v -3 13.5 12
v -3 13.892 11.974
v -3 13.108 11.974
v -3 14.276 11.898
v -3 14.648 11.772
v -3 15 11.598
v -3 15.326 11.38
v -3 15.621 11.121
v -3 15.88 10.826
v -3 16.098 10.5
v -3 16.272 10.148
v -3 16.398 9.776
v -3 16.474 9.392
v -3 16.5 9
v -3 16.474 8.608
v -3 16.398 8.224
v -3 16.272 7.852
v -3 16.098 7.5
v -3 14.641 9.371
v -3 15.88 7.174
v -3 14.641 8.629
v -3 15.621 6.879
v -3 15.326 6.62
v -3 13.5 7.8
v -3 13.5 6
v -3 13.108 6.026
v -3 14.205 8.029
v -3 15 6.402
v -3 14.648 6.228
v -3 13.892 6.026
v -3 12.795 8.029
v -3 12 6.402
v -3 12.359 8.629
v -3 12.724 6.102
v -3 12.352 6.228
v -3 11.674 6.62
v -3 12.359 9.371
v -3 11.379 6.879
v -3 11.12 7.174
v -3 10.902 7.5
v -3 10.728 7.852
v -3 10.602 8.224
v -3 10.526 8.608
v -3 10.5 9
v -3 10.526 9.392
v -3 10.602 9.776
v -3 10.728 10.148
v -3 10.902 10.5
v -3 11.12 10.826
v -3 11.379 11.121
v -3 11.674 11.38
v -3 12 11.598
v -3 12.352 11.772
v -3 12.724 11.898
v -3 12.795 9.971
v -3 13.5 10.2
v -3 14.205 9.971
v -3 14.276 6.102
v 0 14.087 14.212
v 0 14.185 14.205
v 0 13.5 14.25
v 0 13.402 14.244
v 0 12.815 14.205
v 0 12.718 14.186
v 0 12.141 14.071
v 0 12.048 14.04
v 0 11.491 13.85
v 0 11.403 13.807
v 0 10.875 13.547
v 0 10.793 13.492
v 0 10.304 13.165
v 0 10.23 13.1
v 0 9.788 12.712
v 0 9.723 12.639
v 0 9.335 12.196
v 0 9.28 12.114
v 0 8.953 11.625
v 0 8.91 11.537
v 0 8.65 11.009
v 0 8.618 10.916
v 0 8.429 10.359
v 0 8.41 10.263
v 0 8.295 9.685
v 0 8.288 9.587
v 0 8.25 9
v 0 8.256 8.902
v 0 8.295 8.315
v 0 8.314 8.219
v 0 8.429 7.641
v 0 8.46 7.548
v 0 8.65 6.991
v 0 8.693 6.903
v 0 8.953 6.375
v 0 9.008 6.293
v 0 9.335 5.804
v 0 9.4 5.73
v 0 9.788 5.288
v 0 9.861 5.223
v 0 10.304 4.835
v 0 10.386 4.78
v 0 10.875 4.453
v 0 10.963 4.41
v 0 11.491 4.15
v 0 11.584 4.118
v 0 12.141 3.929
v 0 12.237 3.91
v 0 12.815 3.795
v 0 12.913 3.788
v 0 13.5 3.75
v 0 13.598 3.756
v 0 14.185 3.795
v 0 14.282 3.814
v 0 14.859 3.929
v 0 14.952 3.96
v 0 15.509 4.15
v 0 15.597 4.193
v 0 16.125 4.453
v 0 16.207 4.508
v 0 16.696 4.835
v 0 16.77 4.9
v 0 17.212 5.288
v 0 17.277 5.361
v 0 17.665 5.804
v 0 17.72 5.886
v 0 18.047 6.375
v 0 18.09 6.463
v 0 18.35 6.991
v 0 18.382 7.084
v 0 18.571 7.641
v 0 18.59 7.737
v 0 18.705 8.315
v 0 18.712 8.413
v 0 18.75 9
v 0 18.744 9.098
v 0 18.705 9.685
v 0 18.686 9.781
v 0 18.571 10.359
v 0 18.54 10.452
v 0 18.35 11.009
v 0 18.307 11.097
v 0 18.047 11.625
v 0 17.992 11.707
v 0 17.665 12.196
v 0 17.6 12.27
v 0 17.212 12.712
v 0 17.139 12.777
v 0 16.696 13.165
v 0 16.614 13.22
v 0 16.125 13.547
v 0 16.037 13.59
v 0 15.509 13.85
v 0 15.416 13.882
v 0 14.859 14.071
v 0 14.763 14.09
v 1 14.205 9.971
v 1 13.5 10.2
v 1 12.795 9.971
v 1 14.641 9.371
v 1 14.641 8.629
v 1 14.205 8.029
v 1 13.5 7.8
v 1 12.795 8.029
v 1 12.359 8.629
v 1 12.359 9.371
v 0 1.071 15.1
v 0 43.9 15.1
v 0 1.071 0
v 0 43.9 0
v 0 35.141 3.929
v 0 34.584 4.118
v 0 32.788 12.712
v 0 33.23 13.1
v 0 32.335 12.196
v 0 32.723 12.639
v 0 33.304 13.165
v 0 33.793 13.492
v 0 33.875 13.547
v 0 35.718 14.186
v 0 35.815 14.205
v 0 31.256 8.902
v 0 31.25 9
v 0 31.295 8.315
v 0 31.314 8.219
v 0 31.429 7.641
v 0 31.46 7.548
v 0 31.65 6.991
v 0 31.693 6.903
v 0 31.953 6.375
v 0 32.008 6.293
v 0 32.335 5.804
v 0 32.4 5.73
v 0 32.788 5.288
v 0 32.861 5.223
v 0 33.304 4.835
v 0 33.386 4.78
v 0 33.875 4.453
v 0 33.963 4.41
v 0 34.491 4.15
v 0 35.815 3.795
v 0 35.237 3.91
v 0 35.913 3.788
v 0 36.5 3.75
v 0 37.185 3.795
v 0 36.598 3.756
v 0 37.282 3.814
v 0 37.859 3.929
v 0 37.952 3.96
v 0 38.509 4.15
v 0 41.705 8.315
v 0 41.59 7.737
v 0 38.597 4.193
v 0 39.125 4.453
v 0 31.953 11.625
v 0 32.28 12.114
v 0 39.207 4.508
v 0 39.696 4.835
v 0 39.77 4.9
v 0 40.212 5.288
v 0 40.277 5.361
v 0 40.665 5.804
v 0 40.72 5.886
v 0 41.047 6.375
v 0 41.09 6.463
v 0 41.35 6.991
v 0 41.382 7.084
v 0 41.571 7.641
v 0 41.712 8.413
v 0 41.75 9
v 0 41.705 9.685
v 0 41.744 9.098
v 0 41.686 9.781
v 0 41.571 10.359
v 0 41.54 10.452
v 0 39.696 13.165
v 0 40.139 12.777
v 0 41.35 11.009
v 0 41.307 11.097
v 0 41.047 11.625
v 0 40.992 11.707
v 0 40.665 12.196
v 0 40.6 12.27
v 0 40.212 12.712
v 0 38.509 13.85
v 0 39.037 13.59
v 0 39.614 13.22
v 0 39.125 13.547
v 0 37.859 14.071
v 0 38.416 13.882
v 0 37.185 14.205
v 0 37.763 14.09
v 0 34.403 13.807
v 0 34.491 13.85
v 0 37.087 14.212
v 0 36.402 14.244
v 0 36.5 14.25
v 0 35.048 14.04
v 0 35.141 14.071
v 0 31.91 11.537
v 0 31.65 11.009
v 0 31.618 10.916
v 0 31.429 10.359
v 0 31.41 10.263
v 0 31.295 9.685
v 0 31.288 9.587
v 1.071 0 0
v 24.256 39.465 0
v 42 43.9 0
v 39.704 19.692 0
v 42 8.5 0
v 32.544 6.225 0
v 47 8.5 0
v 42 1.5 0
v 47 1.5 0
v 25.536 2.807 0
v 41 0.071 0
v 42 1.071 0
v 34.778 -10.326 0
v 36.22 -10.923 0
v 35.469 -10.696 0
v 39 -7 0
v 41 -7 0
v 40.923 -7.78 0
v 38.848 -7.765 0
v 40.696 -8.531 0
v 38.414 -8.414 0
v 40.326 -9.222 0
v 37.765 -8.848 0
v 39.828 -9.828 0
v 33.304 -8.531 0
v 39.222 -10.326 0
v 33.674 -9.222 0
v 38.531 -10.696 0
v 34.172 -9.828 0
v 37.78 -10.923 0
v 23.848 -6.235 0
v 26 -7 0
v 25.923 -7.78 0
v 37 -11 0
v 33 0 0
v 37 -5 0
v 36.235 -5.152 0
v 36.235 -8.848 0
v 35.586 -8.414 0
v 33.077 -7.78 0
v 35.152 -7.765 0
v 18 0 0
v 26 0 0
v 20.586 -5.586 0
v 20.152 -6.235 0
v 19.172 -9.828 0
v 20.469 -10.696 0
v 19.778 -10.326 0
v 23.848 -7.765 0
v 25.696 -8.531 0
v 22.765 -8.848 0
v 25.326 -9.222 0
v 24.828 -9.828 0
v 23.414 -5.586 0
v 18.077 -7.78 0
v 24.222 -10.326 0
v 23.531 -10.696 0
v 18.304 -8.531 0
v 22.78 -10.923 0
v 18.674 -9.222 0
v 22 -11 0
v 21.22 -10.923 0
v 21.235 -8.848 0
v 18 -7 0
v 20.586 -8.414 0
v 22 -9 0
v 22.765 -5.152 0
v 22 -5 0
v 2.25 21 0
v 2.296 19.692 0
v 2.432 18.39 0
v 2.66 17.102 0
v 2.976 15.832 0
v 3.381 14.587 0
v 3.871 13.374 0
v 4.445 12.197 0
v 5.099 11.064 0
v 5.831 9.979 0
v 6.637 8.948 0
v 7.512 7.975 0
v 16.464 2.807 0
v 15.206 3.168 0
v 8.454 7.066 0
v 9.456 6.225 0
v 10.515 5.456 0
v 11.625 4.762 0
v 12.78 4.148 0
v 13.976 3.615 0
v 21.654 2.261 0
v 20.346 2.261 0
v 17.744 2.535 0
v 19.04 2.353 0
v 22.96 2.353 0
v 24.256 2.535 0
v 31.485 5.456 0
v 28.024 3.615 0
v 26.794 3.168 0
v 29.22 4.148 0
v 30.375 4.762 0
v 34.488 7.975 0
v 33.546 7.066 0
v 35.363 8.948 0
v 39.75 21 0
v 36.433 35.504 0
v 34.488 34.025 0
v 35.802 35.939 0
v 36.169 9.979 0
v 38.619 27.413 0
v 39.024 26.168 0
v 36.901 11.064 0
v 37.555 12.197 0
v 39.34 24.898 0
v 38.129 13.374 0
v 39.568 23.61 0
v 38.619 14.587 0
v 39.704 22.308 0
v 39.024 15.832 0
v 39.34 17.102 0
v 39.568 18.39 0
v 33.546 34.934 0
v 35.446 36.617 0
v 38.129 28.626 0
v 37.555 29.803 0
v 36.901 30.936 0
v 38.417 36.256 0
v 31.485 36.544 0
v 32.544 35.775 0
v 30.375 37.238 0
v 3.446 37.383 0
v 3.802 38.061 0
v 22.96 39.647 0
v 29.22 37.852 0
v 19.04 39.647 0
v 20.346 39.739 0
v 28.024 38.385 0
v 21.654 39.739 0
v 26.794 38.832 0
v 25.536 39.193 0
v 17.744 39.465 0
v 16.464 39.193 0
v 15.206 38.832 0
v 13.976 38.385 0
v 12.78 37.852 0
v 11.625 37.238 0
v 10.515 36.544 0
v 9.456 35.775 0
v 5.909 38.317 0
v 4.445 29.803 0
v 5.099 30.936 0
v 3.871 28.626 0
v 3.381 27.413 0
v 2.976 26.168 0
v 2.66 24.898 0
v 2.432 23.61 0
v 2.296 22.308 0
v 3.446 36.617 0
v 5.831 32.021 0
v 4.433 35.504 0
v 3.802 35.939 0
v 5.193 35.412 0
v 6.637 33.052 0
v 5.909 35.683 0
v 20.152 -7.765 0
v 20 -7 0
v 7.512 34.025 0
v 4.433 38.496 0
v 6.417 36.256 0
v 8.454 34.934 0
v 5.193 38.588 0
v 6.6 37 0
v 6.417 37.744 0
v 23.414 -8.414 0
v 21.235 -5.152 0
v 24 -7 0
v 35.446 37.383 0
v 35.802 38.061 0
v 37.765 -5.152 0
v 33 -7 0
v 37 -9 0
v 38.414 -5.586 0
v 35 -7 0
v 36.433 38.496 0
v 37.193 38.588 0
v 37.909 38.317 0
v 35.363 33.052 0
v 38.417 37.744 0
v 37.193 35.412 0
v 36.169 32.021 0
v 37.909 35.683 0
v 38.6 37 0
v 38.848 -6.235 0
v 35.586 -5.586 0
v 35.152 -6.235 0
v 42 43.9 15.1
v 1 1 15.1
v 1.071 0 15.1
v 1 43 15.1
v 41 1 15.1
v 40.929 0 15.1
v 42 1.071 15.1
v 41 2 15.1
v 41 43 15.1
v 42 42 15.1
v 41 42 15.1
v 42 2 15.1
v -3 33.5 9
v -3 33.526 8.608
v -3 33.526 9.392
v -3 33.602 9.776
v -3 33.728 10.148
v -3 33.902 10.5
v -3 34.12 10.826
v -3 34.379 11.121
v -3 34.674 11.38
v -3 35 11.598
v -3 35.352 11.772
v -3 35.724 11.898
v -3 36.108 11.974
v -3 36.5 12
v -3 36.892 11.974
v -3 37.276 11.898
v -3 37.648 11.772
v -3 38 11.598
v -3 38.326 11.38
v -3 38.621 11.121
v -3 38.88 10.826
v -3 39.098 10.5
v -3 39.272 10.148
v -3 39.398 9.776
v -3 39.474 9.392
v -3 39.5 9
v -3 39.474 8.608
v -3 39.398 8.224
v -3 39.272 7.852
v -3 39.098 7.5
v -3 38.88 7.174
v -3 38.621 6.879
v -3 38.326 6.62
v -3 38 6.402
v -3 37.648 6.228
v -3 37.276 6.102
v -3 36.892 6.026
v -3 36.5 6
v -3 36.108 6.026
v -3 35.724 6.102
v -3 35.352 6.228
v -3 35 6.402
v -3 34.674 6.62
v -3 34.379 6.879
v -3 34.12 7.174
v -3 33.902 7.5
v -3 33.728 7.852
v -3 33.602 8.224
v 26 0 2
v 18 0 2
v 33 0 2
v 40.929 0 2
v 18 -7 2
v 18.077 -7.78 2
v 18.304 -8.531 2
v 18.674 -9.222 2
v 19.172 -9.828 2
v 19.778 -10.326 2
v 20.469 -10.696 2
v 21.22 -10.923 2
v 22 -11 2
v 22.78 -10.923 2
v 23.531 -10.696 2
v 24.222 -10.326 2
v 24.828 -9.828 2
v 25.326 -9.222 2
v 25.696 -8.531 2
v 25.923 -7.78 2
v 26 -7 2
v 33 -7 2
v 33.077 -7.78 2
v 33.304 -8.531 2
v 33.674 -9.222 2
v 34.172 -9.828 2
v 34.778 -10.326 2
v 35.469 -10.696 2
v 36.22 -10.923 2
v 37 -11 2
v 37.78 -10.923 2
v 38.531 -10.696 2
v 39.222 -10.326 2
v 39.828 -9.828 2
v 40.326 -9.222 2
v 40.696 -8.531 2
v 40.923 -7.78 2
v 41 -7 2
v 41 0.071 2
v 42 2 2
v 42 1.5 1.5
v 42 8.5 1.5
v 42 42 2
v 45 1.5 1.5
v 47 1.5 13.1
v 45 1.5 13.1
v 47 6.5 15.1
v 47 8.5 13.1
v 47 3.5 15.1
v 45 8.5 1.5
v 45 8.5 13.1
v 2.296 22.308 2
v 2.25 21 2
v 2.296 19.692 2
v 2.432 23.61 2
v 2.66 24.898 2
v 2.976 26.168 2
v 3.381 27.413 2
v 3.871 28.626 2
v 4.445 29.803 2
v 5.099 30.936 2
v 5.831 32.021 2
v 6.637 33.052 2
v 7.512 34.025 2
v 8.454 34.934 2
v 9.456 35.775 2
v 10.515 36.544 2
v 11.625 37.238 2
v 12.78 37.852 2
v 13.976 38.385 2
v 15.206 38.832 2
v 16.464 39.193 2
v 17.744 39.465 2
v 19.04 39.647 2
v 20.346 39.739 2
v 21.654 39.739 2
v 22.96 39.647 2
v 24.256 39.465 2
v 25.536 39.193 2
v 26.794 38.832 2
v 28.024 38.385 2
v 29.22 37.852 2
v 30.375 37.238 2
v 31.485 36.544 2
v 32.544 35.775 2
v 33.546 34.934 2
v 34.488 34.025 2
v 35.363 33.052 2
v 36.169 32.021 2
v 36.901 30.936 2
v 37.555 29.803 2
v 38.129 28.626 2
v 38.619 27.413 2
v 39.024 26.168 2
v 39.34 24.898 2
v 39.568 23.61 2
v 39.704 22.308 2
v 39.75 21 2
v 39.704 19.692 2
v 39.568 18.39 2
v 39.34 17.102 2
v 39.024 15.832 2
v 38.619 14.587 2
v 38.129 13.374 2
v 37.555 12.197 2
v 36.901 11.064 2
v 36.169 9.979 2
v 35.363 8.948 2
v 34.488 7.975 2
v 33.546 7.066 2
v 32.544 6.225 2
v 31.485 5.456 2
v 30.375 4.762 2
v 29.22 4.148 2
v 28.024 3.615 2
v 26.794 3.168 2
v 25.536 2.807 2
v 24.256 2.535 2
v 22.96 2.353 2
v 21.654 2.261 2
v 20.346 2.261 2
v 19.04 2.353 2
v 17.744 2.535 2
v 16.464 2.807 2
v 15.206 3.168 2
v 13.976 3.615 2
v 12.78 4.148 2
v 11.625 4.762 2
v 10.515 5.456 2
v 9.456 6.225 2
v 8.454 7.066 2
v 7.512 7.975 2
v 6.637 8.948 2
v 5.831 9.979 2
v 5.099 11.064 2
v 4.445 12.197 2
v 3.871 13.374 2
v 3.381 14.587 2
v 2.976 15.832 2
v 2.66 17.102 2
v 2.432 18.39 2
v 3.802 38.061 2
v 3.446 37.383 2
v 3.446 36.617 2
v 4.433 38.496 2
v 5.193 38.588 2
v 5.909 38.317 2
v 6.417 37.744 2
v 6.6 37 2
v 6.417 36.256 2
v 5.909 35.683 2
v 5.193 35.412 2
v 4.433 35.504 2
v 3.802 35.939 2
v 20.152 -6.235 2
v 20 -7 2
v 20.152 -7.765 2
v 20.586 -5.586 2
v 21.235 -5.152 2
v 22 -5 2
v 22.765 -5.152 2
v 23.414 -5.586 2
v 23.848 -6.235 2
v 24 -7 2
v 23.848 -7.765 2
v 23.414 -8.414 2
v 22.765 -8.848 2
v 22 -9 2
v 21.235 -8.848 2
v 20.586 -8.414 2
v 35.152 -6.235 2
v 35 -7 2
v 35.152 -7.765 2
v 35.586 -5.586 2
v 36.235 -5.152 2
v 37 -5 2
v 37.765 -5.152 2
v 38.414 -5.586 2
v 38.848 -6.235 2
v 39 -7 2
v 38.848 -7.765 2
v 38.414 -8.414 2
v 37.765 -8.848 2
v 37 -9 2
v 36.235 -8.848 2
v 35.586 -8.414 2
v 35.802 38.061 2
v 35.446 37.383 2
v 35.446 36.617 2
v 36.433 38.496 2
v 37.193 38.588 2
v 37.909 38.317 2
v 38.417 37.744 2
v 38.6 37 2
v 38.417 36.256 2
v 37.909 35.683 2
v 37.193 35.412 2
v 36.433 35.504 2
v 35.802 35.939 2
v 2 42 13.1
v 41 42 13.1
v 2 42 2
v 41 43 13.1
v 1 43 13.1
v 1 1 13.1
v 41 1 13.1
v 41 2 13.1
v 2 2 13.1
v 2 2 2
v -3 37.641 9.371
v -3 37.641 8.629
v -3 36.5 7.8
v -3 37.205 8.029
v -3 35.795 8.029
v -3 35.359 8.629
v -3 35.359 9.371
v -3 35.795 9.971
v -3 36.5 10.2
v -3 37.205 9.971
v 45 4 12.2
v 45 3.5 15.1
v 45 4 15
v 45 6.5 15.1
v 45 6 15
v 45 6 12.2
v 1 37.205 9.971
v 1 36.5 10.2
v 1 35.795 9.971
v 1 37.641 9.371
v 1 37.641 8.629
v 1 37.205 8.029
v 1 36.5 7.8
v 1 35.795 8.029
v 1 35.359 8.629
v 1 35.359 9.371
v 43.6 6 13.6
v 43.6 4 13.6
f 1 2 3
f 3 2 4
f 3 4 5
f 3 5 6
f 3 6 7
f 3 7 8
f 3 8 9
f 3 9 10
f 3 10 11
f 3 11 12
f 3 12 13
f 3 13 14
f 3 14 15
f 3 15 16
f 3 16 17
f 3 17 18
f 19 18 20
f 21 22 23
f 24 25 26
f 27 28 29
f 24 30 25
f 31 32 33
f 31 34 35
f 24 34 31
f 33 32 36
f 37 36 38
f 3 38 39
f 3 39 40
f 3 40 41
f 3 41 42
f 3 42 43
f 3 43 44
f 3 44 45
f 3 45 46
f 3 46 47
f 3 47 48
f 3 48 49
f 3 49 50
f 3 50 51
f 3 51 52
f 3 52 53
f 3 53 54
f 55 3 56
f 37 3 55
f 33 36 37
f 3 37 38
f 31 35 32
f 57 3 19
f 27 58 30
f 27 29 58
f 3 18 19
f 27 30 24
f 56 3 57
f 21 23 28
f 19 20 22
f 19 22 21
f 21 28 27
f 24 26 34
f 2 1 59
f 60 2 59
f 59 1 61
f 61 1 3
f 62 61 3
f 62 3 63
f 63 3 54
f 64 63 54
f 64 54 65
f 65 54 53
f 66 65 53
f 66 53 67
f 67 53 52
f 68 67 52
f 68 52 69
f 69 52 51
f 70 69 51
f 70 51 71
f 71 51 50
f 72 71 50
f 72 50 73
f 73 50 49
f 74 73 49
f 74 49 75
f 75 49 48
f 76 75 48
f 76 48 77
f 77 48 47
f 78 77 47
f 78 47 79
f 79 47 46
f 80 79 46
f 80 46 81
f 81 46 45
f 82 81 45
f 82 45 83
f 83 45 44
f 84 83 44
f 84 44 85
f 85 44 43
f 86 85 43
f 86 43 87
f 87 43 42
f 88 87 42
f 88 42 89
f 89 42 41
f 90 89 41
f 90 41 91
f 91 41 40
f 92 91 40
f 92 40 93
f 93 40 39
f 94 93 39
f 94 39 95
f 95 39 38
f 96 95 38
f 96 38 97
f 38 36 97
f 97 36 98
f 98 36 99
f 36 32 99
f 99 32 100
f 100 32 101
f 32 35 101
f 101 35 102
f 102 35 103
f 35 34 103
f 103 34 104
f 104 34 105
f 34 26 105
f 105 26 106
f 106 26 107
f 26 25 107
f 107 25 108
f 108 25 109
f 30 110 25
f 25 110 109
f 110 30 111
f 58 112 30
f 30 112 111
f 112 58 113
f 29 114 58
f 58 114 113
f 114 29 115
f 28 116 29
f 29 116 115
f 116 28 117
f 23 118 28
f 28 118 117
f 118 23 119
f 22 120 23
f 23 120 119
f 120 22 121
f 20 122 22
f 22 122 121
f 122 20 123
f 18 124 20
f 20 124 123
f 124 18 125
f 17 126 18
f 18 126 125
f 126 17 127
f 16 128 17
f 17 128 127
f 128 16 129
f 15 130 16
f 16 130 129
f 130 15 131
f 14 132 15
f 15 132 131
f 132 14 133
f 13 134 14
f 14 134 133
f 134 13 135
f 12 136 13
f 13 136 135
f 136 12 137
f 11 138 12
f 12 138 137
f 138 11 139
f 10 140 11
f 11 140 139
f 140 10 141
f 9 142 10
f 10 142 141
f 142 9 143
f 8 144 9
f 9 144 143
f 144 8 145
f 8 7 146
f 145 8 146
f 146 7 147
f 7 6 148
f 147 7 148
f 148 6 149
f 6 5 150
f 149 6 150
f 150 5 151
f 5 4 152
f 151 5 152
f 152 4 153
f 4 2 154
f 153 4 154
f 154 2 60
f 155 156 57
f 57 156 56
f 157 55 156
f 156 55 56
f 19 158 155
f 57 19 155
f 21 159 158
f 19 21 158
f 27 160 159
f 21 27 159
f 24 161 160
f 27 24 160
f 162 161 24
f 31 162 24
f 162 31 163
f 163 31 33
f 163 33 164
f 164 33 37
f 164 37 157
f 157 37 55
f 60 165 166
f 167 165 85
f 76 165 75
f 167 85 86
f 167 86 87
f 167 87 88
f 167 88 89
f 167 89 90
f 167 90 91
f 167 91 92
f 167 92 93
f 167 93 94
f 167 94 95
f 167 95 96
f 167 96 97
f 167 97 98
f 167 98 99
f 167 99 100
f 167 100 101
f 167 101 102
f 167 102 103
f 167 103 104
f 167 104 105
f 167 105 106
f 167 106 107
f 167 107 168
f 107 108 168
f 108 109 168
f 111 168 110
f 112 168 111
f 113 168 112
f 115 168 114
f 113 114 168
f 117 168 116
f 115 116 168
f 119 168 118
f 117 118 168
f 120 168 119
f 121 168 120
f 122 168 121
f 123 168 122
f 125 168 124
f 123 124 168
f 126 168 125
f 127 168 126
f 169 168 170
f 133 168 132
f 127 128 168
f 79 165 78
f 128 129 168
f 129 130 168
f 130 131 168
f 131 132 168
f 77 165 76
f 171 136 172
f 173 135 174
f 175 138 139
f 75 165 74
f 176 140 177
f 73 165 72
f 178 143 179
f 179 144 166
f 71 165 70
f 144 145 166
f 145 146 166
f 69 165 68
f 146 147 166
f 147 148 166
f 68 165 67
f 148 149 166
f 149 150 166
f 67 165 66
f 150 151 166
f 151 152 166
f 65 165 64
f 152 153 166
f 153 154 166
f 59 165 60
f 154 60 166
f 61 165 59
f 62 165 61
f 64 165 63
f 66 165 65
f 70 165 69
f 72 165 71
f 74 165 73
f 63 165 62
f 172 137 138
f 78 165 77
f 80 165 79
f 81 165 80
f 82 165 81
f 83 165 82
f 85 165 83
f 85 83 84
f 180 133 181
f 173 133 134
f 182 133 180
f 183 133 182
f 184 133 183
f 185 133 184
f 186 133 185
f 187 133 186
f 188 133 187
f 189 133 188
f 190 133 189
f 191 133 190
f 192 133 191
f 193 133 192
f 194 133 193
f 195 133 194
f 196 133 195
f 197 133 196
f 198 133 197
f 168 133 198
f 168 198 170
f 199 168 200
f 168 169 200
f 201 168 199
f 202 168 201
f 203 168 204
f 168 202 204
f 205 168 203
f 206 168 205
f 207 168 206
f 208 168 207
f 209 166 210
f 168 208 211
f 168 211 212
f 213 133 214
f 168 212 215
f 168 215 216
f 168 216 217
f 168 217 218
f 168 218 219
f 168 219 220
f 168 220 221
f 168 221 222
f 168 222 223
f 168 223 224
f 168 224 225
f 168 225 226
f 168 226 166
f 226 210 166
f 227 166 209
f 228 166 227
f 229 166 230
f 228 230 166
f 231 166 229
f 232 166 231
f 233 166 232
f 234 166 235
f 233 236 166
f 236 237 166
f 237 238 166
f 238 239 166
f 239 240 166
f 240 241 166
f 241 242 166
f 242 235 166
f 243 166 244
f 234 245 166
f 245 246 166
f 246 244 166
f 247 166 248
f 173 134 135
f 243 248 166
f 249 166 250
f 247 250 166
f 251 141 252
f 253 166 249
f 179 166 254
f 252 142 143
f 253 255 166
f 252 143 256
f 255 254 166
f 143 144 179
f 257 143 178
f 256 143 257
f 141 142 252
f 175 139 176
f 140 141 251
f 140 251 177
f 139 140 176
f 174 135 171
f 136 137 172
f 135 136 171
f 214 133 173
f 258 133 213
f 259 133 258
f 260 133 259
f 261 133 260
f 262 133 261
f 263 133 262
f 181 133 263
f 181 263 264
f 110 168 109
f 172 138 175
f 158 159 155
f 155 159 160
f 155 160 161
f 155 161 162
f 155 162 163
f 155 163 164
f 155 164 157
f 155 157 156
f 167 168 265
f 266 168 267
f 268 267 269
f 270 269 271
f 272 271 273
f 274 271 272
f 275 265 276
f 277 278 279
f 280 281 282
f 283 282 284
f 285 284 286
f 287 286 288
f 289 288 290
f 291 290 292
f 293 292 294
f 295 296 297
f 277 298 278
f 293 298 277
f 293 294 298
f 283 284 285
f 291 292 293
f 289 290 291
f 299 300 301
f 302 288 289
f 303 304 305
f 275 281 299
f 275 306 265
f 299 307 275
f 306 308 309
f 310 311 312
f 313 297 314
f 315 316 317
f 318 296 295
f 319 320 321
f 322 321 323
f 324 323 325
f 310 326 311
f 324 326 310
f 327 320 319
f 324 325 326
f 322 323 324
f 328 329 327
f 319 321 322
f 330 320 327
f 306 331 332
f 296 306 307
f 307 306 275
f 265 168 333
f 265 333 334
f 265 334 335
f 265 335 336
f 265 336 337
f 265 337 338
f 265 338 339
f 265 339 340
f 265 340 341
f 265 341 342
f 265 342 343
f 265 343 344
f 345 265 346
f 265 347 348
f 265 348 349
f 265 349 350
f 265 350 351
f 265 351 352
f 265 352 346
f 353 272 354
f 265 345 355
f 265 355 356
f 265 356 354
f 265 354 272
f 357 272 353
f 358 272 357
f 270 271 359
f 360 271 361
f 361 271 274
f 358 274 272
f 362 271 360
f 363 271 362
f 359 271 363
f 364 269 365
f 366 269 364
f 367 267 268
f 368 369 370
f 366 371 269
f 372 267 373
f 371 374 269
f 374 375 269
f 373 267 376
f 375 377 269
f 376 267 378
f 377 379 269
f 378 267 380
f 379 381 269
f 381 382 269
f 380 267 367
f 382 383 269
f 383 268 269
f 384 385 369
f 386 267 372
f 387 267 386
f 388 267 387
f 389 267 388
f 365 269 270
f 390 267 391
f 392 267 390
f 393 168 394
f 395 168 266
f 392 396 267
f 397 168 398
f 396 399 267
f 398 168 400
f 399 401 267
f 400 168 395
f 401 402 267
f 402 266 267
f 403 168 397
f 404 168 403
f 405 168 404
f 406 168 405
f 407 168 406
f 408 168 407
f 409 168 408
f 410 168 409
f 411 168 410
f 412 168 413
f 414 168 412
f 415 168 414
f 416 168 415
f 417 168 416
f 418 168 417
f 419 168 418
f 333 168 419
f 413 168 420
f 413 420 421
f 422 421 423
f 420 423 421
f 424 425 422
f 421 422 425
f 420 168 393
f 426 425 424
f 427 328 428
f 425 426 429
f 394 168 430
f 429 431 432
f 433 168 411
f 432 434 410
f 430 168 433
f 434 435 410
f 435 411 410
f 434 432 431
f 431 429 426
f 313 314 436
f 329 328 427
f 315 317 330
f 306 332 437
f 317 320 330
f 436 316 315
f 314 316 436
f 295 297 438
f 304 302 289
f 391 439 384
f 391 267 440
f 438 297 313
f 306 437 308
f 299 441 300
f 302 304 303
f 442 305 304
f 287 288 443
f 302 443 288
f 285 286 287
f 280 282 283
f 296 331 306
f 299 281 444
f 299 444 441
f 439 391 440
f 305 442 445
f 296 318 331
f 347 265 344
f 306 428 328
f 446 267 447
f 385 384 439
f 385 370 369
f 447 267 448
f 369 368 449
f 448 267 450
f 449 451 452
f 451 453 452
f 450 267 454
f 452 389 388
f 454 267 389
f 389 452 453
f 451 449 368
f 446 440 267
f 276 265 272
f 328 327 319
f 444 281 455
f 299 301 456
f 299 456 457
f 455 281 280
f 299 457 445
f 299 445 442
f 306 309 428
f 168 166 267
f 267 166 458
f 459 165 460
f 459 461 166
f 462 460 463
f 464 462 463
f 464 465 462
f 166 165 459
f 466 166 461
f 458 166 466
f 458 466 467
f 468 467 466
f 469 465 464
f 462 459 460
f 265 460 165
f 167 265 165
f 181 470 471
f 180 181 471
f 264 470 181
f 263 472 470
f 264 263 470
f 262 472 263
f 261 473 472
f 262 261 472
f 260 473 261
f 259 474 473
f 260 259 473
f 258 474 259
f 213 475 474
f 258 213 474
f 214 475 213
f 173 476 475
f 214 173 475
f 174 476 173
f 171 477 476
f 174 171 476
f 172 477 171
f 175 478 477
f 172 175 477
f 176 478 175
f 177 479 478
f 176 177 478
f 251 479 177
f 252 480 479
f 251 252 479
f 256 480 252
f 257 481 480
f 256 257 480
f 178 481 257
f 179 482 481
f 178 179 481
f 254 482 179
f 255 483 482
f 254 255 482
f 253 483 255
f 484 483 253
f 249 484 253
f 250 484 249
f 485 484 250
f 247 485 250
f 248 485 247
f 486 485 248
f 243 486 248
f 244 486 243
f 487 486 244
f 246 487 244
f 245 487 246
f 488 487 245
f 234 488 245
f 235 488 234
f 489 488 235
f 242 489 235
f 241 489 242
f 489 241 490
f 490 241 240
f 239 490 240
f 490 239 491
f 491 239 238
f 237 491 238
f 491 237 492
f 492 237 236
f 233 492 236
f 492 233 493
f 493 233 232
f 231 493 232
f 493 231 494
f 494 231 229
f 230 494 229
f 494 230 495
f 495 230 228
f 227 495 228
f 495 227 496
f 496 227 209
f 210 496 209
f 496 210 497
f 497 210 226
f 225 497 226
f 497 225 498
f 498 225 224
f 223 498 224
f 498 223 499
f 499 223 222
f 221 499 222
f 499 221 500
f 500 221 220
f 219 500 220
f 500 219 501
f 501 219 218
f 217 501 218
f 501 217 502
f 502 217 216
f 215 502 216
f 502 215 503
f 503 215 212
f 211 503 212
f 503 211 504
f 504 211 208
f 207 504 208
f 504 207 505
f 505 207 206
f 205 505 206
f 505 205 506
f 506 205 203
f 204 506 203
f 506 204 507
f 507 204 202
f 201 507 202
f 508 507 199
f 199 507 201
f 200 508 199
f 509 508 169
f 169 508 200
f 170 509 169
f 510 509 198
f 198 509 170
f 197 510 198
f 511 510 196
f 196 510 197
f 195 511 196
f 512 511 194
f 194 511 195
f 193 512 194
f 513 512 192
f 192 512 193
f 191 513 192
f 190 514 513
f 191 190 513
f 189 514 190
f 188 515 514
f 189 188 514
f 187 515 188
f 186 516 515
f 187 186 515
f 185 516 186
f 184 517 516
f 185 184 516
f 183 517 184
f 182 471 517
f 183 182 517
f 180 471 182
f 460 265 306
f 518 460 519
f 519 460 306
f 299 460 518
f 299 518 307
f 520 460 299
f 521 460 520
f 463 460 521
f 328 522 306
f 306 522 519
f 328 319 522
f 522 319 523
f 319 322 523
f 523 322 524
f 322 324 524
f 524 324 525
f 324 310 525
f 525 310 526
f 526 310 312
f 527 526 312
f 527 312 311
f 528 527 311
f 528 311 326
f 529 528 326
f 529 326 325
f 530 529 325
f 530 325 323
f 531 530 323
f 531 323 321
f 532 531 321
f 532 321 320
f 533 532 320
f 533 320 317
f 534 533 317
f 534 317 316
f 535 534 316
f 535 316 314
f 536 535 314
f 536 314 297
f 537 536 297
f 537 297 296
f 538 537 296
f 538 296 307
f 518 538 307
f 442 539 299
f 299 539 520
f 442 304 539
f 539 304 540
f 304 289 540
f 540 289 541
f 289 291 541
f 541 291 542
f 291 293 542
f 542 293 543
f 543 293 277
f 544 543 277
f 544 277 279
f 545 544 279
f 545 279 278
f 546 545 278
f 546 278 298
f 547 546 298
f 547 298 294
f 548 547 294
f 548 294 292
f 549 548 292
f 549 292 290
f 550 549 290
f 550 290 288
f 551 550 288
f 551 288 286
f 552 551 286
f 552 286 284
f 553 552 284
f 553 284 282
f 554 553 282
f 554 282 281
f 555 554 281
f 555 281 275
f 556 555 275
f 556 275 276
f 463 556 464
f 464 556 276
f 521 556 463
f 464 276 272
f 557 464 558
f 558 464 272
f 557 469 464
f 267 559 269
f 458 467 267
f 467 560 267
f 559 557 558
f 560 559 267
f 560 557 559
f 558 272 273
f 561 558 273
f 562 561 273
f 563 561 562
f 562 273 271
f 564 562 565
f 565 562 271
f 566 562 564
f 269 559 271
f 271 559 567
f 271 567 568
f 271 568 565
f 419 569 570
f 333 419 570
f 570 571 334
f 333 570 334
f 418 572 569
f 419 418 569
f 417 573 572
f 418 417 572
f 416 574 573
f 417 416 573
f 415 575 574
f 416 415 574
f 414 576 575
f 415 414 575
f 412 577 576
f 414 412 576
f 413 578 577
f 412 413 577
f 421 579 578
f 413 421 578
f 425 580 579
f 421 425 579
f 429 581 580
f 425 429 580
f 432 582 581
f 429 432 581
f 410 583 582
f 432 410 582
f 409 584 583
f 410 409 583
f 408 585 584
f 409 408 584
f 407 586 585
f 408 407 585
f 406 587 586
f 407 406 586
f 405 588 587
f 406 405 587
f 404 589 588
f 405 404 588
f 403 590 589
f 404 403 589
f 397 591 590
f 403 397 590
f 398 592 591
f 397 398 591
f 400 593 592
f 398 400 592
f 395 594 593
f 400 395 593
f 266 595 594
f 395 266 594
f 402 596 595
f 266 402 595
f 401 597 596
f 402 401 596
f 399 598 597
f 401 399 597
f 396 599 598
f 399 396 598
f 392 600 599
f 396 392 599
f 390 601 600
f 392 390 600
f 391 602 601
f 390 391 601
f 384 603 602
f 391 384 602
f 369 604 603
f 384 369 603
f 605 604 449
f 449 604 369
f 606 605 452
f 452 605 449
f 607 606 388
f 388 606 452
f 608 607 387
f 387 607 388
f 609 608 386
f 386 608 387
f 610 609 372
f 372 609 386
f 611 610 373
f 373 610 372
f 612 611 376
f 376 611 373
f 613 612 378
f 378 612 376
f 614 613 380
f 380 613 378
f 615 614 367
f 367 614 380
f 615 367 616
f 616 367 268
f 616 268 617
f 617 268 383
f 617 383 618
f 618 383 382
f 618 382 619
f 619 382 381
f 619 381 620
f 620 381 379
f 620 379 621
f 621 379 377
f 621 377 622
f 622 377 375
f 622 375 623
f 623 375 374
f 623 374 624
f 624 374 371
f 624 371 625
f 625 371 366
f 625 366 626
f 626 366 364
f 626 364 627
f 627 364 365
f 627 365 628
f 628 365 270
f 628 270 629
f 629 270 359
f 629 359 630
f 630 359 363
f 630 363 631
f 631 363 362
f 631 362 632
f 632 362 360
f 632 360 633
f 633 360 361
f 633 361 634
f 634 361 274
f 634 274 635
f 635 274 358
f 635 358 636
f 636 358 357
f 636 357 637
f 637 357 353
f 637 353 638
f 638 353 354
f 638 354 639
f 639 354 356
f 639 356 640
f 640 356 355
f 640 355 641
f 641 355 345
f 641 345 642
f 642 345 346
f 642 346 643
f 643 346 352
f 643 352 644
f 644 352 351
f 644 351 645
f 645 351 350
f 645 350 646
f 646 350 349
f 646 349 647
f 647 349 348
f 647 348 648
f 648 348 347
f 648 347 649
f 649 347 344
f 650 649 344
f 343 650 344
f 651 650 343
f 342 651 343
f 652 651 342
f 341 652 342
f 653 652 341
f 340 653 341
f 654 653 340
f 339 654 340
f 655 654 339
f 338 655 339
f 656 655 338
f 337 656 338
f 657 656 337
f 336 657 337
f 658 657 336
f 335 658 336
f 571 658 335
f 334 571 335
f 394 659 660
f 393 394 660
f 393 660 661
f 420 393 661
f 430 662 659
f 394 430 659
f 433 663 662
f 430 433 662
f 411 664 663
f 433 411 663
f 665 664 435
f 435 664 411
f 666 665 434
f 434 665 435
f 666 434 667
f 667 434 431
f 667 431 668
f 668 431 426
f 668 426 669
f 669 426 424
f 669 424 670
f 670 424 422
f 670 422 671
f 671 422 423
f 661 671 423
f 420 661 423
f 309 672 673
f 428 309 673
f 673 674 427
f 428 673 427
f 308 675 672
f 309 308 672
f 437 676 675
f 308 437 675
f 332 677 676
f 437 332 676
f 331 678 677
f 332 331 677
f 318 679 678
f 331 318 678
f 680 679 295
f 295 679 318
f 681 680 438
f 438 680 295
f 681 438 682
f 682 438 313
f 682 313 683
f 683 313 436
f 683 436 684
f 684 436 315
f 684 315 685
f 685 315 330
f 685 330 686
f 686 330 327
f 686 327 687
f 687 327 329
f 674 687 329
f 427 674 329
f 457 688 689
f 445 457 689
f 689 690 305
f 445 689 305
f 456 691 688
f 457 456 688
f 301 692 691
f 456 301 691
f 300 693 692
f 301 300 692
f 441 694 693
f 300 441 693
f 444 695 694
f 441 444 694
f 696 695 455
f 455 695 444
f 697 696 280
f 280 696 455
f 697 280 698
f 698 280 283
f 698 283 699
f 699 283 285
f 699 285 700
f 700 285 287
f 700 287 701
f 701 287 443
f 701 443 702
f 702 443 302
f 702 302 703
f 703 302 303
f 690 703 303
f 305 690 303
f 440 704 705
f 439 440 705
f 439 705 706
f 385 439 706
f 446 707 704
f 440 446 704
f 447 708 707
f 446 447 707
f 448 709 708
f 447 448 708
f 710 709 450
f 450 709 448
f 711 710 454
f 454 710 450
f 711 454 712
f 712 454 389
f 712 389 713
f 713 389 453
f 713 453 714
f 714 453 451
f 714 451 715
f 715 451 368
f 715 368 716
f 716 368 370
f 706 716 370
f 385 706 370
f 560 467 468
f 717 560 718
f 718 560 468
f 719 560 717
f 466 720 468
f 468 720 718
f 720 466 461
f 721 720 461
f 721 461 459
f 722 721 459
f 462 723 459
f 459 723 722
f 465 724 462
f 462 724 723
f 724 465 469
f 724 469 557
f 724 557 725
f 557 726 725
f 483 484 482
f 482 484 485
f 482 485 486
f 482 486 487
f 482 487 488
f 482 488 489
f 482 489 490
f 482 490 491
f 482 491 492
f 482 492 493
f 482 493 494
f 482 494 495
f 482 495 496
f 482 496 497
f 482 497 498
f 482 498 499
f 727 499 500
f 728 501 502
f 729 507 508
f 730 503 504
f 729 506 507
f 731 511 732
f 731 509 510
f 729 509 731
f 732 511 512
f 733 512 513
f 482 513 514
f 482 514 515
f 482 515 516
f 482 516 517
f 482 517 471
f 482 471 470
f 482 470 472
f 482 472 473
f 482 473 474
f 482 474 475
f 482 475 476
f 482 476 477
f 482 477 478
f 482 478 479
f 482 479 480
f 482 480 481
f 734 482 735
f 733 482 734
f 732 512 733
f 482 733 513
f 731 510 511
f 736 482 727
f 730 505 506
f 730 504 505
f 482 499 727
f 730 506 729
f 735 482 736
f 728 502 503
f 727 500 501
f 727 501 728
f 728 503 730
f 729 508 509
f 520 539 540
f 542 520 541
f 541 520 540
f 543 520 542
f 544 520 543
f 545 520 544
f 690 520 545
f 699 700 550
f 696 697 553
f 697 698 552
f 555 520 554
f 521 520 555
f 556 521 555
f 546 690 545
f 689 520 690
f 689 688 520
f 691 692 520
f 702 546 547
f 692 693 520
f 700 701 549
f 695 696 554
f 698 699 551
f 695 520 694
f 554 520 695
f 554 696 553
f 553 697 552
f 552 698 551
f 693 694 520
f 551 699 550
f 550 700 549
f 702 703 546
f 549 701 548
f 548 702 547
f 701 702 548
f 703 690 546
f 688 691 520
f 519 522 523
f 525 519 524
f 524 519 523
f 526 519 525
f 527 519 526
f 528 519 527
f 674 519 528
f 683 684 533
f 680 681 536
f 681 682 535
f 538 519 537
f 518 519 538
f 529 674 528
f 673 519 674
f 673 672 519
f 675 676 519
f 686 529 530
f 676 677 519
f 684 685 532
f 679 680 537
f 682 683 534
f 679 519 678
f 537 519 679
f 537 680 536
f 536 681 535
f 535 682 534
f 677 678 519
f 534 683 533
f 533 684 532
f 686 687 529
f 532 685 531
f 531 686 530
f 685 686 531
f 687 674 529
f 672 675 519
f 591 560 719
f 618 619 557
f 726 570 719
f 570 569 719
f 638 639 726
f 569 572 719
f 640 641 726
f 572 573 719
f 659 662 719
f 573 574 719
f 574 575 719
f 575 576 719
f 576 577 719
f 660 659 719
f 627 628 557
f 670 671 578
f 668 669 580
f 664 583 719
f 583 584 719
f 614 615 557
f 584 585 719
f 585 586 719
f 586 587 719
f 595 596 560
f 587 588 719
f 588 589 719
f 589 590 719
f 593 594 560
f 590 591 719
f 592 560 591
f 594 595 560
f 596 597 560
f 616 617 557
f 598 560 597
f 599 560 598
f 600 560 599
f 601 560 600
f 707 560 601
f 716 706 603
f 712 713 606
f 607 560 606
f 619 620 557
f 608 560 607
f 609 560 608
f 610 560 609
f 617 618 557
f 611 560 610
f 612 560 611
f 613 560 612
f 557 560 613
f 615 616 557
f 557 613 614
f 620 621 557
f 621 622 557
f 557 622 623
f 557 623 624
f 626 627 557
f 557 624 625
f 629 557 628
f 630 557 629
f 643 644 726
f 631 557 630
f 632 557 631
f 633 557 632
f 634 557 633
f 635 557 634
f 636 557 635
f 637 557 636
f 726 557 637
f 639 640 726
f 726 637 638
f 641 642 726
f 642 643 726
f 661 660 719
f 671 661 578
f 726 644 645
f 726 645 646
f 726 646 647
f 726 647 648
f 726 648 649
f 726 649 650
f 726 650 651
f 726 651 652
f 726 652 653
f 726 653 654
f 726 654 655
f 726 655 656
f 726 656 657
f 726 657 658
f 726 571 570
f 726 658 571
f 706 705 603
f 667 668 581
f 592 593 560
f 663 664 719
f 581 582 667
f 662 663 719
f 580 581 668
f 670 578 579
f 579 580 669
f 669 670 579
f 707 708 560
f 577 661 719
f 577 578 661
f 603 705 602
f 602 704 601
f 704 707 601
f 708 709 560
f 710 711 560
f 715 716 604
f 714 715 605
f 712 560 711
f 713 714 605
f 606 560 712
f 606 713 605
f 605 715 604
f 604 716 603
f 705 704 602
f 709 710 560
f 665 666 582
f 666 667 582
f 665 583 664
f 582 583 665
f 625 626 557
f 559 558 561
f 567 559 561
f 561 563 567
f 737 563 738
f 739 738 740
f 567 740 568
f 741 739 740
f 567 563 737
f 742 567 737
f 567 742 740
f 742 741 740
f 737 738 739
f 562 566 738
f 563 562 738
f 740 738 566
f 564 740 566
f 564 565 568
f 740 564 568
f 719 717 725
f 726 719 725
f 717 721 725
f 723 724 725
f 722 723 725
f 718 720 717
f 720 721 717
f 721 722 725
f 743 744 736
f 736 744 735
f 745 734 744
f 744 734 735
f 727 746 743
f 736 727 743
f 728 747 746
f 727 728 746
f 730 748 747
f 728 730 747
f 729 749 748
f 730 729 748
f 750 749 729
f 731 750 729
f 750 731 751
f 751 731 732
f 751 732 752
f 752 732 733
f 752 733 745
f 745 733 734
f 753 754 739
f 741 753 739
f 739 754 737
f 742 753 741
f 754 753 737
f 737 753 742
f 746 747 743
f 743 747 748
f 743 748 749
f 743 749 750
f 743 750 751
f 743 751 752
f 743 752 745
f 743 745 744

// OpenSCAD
// Original design by Matt (iamburny)
// Changes by dc42:
// 1. Increased thickness of cable trap from 1.5mm to 2mm because mine broke
// 2. Replaced tie wrap T at top centre by tie wrap hole at top right

$fs=0.8; // def 1, 0.2 is high res
$fa=4;//def 12, 3 is very nice
%translate([0,0,-0.5])cube([200,200,1],center=true); //build platform

sc = 32; //Screw Centres
wall=2;
hole = 37.5;  //fan hole
x=42;
y=x;
z=15.10;
heo = 2.5; //hot end offset
hbr = 16; //heat block recess

size=11; // size of the ball joint
joint_spacing =0; // some space between them?
joint_thickness = 3; // thickness of the arms - was 2
joint_arms = 2; // how many arms do you want?
arm_width = 5; // actually: how much is removed from the arms Larger values will remove more - was 10

ventB=(x/2)-(hbr/2)+heo-2;
ventS=(x/2)-(hbr/2)-heo;

module ball() {
	sphere(r=size);
	translate([0,0,-size]) cylinder(r1=8,r2=6,h=3);
	translate([0,0,-size-3]) cylinder(r=8,h=3);
}

module joint() {
	difference() 	{
		sphere(r=size+joint_spacing+joint_thickness);
		sphere(r=size+joint_spacing);
		translate([0,0,-size-3]) cube([size+joint_spacing+joint_thickness+25,size+joint_spacing+joint_thickness+25,18],center=true);
		for(i=[0:joint_arms])
		{
			rotate([0,0,360/joint_arms*i]) translate([-arm_width/2,0, -size/2-4])
				cube([arm_width,size+joint_spacing+joint_thickness+20,size+6]);
		}
	}
	translate([0,0,size-0]) cylinder(r2=12,r1=12,h=5);

}

module prism(l, w, h) {
	translate([0, l, 0]) rotate( a= [90, 0, 0]) 
	linear_extrude(height = l) polygon(points = [
		[0, 0],
		[w, 0],
		[0, h]
	], paths=[[0,2,1]]);
}

module vHole(len) {
	difference() {
		union() {
			cube([10-6,len,6]);
			translate([10-6,len,6]) rotate([90,0,0]) cylinder(len,6,6);
		}
		translate ([-7,-1,6]) cube([16,len+2,10]);
		translate ([-7,-1,0]) cube([6,len+2,7]);
	}
}


//Body
difference() {
	union() {
		cube([x,y+1.9,z]); //outer block
		translate([-3,((x-sc)/2) + sc - 0.5,9]) rotate([0,90,0]) cylinder(4,3,6);	// sensor board mount
		translate([-3,((x-sc)/2) + sc - 23.5,9]) rotate([0,90,0]) cylinder(4,3,6);	// sensor board mount	
	}

	translate([x/2,x/2,-.1]) cylinder(20,hole/2,hole/2); //fan hole
	
	translate([wall,wall,2]) cube([x-(wall*2), x-wall, 20]); //heatsink hole
	translate([wall-1,wall-1,z-2]) cube([x-(wall), x, 20]); //heatsink recess
	for(xp = [0:1]) { //2 x screw holes
		translate([((x-sc)/2) + (xp*sc),((x-sc)/2) + sc,-.1]) cylinder(3,1.6,1.6);
	}
	
	translate([-4,((x-sc)/2) + sc - 0.5,9]) rotate([0,90,0]) cylinder(h=5,r=1.2);	// sensor board hole
	translate([-4,((x-sc)/2) + sc - 23.5,9]) rotate([0,90,0]) cylinder(h=5,r=1.2);	// sensor board hole
	
	translate([0,-6,-1]) rotate([0,0,45]) cube([5,5,z+2]); // top bevel
	translate([x,-6,-1]) rotate([0,0,45]) cube([5,5,z+2]); //top bevel
	//translate([0,y,-1]) rotate([0,0,45]) cube([2.7,2.7,z+2]); //bottom right bevel

	//Vents
	*for(i=[1:6])
	{
		translate([x-wall-1,i*6,3]) cube([wall+2,4,10.2]);
	}

     //Cut out entire wall as exhaust port
	translate([x-wall-1,wall,wall]) cube([wall+2,y-wall,20]);
     

}

//Cable Trap
ct_y=1.5; //Y position, orig y/2-10
ct_l=7; //Y length
translate([x,ct_y,0]) cube([wall*2,ct_l,1.5]); //right cable trap
difference() {
	translate([x+3,ct_y,0]) cube([2,ct_l,z]); //right cable trap
	translate([x+2,ct_y,z-2]) rotate([45,0,0]) cube(4); //right cable trap bevel
	translate([x+2,ct_y+ct_l,z-2]) rotate([45,0,0]) cube(4); //right cable trap bevel
}
translate([x+1.6,ct_y+2.5,z-1.5]) rotate([0,45,0]) cube([2,ct_l-5,2]); //right cable trap catch


module tie_wrap()
{
	tw_l=7;
	//Tie Wrap hole
	difference() {
		union() {
			translate([-4,-tw_l,0]) cube([8,tw_l+1,2]);
			translate([0,-tw_l,0]) cylinder(r=4,h=2);
		}
		translate([0,-tw_l,-1]) cylinder(r=2,h=4);
	}

}

translate([x-5,0,0]) tie_wrap();
translate([x-20,0,0]) tie_wrap();
